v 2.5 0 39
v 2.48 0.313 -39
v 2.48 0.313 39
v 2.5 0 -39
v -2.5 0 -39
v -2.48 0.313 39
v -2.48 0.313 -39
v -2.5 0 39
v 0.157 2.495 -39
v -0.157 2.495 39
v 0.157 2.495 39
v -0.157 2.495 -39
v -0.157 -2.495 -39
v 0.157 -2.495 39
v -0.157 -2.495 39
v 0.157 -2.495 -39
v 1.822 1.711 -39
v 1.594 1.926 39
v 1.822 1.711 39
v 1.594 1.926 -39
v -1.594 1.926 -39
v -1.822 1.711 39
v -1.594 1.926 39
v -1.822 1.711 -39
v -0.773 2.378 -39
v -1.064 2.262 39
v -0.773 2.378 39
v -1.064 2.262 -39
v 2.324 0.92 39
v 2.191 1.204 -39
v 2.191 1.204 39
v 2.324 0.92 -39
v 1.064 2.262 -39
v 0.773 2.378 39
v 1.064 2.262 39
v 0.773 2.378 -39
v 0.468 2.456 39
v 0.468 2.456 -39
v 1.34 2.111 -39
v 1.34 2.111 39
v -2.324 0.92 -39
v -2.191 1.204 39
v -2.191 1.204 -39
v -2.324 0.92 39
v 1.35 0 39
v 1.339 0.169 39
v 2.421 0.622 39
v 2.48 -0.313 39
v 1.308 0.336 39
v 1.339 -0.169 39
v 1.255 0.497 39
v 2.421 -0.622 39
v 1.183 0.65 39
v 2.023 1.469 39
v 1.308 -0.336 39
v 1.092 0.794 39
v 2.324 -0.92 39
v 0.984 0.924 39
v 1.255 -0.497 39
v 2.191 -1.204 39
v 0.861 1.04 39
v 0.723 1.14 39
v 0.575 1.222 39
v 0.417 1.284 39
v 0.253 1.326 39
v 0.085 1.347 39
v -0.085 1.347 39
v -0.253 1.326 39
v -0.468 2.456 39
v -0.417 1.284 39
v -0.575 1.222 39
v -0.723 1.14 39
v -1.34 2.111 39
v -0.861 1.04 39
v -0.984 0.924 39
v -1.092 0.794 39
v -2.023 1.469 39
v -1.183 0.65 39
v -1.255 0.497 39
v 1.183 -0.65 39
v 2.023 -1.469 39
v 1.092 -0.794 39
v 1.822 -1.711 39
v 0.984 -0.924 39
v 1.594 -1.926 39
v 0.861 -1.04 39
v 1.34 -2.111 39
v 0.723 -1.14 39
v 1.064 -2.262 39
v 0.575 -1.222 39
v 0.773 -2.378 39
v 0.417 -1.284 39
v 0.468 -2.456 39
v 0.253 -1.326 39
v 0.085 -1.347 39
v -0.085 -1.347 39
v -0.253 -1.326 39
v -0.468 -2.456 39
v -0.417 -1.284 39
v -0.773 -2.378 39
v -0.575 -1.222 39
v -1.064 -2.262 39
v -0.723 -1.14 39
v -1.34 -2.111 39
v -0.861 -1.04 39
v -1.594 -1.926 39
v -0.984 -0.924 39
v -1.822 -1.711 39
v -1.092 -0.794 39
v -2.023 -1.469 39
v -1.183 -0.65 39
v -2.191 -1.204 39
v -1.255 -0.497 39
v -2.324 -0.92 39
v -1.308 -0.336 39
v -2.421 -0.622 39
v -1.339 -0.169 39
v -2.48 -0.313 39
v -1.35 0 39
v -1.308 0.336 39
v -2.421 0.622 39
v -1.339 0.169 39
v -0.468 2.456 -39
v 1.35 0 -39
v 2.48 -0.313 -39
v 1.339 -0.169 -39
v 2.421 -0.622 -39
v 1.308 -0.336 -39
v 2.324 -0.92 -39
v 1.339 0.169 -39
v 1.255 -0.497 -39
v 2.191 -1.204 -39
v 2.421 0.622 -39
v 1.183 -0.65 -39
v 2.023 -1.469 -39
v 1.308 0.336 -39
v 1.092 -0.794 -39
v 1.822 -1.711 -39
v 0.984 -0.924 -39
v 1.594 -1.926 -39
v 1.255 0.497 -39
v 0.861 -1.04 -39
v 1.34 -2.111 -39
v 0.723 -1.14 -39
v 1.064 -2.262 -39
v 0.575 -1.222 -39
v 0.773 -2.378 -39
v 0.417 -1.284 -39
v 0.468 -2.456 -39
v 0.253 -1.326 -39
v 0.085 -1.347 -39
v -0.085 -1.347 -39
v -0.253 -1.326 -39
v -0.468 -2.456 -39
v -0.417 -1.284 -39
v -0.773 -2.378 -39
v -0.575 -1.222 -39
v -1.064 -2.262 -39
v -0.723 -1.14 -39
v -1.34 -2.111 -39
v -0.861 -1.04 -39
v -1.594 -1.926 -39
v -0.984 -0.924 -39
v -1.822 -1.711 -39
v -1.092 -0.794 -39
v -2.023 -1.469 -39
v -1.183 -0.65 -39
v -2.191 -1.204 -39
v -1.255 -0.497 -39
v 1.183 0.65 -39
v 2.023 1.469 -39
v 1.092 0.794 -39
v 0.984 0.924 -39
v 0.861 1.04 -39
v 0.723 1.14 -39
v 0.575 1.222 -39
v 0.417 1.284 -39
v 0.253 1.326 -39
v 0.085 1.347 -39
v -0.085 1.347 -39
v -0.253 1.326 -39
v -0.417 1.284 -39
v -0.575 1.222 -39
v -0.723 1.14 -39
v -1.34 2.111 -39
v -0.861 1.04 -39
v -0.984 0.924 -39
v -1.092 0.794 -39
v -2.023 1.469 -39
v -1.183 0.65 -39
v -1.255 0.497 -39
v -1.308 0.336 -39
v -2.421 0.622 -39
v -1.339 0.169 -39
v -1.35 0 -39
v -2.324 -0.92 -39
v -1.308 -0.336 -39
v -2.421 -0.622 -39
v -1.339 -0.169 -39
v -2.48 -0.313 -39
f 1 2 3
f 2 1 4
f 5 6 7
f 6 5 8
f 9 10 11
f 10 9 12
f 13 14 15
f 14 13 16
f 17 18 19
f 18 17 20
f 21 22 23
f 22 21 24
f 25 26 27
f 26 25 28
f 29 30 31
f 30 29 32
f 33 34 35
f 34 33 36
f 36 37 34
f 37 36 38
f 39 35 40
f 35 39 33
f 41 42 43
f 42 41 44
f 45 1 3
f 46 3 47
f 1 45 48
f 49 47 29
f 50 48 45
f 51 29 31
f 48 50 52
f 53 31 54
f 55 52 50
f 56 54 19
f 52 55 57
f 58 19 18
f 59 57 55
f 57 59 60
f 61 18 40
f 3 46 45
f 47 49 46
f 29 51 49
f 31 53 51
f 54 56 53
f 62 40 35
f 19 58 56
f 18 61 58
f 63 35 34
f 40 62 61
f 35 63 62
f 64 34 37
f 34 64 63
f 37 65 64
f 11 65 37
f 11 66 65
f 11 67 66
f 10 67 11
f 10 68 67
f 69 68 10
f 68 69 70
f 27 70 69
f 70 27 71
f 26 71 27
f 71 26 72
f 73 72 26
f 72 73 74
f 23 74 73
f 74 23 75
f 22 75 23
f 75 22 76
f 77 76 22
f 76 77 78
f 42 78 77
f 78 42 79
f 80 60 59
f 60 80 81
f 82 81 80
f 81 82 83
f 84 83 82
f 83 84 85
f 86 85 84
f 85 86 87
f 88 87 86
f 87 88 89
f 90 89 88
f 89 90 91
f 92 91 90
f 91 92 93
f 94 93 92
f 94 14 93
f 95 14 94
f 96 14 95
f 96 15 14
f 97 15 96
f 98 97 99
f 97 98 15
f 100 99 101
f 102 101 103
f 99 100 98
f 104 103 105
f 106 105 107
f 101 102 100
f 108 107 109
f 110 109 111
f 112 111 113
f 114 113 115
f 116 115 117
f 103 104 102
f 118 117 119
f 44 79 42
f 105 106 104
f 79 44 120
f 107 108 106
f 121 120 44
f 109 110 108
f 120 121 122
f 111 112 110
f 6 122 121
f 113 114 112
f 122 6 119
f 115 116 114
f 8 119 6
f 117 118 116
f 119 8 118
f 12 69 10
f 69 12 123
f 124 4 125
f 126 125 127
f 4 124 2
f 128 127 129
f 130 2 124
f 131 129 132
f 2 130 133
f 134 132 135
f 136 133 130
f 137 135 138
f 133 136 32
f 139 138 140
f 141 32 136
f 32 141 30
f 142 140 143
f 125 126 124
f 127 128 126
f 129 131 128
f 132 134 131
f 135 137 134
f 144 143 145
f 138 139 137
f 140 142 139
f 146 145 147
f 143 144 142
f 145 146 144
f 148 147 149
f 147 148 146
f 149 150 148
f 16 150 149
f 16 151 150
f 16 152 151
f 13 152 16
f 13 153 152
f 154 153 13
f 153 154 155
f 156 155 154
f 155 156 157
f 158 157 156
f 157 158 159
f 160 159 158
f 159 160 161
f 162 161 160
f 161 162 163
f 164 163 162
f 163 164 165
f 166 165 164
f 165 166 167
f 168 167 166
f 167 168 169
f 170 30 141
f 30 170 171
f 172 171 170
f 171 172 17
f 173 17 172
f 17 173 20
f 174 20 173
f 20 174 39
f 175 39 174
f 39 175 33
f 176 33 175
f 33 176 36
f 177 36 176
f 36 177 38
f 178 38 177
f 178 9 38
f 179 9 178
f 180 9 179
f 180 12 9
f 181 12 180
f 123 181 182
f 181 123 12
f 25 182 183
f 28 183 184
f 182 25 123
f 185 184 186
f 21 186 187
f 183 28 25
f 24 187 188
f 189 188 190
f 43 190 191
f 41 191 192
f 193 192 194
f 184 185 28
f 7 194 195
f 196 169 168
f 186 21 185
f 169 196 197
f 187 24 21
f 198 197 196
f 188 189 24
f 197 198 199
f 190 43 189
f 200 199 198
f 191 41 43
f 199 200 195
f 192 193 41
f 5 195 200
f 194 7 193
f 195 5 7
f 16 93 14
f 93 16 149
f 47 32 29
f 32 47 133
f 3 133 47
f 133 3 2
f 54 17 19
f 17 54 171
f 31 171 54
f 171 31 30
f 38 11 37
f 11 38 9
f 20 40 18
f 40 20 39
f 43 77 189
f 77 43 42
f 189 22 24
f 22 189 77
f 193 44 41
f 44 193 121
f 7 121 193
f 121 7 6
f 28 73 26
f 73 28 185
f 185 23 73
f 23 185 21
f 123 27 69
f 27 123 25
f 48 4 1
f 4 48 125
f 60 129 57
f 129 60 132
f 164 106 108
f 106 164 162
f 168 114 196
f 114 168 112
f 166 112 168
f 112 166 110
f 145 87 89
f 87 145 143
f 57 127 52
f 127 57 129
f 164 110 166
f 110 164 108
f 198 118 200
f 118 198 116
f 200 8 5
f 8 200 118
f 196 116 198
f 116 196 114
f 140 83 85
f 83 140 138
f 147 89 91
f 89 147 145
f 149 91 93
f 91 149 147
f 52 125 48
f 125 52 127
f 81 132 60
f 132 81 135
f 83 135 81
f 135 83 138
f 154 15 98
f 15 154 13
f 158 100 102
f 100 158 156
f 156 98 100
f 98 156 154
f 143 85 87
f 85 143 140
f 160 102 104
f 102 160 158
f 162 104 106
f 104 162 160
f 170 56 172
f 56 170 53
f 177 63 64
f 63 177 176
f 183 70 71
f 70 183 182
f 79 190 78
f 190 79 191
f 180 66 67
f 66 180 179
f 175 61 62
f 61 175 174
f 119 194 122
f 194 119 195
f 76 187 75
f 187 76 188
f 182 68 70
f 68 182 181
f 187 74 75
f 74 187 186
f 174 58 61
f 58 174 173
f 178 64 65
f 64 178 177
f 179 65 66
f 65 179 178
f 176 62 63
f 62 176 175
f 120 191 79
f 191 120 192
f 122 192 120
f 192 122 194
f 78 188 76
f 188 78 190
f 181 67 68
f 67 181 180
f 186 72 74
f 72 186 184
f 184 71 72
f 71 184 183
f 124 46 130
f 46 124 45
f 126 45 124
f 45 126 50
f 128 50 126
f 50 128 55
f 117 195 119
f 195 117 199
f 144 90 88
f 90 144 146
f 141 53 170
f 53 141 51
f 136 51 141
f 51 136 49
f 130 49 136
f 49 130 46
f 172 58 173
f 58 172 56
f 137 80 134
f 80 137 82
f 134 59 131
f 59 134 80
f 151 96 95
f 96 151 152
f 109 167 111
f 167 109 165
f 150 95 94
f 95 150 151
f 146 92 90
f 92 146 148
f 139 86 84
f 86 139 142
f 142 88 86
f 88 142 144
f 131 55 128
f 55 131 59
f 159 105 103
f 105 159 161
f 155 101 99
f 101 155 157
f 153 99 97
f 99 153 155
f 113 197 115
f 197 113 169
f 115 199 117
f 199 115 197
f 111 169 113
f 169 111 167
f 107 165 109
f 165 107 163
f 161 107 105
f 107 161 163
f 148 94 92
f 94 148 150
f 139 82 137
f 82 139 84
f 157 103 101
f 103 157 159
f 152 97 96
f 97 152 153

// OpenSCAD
$fn = 50;


difference() {
	union() {
		translate(v = [0, 0, -39.0000000000]) {
			cylinder(h = 78, r = 2.5000000000);
		}
	}
	union() {
		translate(v = [0, 0, -100.0000000000]) {
			cylinder(h = 200, r = 1.3500000000);
		}
	}
}
